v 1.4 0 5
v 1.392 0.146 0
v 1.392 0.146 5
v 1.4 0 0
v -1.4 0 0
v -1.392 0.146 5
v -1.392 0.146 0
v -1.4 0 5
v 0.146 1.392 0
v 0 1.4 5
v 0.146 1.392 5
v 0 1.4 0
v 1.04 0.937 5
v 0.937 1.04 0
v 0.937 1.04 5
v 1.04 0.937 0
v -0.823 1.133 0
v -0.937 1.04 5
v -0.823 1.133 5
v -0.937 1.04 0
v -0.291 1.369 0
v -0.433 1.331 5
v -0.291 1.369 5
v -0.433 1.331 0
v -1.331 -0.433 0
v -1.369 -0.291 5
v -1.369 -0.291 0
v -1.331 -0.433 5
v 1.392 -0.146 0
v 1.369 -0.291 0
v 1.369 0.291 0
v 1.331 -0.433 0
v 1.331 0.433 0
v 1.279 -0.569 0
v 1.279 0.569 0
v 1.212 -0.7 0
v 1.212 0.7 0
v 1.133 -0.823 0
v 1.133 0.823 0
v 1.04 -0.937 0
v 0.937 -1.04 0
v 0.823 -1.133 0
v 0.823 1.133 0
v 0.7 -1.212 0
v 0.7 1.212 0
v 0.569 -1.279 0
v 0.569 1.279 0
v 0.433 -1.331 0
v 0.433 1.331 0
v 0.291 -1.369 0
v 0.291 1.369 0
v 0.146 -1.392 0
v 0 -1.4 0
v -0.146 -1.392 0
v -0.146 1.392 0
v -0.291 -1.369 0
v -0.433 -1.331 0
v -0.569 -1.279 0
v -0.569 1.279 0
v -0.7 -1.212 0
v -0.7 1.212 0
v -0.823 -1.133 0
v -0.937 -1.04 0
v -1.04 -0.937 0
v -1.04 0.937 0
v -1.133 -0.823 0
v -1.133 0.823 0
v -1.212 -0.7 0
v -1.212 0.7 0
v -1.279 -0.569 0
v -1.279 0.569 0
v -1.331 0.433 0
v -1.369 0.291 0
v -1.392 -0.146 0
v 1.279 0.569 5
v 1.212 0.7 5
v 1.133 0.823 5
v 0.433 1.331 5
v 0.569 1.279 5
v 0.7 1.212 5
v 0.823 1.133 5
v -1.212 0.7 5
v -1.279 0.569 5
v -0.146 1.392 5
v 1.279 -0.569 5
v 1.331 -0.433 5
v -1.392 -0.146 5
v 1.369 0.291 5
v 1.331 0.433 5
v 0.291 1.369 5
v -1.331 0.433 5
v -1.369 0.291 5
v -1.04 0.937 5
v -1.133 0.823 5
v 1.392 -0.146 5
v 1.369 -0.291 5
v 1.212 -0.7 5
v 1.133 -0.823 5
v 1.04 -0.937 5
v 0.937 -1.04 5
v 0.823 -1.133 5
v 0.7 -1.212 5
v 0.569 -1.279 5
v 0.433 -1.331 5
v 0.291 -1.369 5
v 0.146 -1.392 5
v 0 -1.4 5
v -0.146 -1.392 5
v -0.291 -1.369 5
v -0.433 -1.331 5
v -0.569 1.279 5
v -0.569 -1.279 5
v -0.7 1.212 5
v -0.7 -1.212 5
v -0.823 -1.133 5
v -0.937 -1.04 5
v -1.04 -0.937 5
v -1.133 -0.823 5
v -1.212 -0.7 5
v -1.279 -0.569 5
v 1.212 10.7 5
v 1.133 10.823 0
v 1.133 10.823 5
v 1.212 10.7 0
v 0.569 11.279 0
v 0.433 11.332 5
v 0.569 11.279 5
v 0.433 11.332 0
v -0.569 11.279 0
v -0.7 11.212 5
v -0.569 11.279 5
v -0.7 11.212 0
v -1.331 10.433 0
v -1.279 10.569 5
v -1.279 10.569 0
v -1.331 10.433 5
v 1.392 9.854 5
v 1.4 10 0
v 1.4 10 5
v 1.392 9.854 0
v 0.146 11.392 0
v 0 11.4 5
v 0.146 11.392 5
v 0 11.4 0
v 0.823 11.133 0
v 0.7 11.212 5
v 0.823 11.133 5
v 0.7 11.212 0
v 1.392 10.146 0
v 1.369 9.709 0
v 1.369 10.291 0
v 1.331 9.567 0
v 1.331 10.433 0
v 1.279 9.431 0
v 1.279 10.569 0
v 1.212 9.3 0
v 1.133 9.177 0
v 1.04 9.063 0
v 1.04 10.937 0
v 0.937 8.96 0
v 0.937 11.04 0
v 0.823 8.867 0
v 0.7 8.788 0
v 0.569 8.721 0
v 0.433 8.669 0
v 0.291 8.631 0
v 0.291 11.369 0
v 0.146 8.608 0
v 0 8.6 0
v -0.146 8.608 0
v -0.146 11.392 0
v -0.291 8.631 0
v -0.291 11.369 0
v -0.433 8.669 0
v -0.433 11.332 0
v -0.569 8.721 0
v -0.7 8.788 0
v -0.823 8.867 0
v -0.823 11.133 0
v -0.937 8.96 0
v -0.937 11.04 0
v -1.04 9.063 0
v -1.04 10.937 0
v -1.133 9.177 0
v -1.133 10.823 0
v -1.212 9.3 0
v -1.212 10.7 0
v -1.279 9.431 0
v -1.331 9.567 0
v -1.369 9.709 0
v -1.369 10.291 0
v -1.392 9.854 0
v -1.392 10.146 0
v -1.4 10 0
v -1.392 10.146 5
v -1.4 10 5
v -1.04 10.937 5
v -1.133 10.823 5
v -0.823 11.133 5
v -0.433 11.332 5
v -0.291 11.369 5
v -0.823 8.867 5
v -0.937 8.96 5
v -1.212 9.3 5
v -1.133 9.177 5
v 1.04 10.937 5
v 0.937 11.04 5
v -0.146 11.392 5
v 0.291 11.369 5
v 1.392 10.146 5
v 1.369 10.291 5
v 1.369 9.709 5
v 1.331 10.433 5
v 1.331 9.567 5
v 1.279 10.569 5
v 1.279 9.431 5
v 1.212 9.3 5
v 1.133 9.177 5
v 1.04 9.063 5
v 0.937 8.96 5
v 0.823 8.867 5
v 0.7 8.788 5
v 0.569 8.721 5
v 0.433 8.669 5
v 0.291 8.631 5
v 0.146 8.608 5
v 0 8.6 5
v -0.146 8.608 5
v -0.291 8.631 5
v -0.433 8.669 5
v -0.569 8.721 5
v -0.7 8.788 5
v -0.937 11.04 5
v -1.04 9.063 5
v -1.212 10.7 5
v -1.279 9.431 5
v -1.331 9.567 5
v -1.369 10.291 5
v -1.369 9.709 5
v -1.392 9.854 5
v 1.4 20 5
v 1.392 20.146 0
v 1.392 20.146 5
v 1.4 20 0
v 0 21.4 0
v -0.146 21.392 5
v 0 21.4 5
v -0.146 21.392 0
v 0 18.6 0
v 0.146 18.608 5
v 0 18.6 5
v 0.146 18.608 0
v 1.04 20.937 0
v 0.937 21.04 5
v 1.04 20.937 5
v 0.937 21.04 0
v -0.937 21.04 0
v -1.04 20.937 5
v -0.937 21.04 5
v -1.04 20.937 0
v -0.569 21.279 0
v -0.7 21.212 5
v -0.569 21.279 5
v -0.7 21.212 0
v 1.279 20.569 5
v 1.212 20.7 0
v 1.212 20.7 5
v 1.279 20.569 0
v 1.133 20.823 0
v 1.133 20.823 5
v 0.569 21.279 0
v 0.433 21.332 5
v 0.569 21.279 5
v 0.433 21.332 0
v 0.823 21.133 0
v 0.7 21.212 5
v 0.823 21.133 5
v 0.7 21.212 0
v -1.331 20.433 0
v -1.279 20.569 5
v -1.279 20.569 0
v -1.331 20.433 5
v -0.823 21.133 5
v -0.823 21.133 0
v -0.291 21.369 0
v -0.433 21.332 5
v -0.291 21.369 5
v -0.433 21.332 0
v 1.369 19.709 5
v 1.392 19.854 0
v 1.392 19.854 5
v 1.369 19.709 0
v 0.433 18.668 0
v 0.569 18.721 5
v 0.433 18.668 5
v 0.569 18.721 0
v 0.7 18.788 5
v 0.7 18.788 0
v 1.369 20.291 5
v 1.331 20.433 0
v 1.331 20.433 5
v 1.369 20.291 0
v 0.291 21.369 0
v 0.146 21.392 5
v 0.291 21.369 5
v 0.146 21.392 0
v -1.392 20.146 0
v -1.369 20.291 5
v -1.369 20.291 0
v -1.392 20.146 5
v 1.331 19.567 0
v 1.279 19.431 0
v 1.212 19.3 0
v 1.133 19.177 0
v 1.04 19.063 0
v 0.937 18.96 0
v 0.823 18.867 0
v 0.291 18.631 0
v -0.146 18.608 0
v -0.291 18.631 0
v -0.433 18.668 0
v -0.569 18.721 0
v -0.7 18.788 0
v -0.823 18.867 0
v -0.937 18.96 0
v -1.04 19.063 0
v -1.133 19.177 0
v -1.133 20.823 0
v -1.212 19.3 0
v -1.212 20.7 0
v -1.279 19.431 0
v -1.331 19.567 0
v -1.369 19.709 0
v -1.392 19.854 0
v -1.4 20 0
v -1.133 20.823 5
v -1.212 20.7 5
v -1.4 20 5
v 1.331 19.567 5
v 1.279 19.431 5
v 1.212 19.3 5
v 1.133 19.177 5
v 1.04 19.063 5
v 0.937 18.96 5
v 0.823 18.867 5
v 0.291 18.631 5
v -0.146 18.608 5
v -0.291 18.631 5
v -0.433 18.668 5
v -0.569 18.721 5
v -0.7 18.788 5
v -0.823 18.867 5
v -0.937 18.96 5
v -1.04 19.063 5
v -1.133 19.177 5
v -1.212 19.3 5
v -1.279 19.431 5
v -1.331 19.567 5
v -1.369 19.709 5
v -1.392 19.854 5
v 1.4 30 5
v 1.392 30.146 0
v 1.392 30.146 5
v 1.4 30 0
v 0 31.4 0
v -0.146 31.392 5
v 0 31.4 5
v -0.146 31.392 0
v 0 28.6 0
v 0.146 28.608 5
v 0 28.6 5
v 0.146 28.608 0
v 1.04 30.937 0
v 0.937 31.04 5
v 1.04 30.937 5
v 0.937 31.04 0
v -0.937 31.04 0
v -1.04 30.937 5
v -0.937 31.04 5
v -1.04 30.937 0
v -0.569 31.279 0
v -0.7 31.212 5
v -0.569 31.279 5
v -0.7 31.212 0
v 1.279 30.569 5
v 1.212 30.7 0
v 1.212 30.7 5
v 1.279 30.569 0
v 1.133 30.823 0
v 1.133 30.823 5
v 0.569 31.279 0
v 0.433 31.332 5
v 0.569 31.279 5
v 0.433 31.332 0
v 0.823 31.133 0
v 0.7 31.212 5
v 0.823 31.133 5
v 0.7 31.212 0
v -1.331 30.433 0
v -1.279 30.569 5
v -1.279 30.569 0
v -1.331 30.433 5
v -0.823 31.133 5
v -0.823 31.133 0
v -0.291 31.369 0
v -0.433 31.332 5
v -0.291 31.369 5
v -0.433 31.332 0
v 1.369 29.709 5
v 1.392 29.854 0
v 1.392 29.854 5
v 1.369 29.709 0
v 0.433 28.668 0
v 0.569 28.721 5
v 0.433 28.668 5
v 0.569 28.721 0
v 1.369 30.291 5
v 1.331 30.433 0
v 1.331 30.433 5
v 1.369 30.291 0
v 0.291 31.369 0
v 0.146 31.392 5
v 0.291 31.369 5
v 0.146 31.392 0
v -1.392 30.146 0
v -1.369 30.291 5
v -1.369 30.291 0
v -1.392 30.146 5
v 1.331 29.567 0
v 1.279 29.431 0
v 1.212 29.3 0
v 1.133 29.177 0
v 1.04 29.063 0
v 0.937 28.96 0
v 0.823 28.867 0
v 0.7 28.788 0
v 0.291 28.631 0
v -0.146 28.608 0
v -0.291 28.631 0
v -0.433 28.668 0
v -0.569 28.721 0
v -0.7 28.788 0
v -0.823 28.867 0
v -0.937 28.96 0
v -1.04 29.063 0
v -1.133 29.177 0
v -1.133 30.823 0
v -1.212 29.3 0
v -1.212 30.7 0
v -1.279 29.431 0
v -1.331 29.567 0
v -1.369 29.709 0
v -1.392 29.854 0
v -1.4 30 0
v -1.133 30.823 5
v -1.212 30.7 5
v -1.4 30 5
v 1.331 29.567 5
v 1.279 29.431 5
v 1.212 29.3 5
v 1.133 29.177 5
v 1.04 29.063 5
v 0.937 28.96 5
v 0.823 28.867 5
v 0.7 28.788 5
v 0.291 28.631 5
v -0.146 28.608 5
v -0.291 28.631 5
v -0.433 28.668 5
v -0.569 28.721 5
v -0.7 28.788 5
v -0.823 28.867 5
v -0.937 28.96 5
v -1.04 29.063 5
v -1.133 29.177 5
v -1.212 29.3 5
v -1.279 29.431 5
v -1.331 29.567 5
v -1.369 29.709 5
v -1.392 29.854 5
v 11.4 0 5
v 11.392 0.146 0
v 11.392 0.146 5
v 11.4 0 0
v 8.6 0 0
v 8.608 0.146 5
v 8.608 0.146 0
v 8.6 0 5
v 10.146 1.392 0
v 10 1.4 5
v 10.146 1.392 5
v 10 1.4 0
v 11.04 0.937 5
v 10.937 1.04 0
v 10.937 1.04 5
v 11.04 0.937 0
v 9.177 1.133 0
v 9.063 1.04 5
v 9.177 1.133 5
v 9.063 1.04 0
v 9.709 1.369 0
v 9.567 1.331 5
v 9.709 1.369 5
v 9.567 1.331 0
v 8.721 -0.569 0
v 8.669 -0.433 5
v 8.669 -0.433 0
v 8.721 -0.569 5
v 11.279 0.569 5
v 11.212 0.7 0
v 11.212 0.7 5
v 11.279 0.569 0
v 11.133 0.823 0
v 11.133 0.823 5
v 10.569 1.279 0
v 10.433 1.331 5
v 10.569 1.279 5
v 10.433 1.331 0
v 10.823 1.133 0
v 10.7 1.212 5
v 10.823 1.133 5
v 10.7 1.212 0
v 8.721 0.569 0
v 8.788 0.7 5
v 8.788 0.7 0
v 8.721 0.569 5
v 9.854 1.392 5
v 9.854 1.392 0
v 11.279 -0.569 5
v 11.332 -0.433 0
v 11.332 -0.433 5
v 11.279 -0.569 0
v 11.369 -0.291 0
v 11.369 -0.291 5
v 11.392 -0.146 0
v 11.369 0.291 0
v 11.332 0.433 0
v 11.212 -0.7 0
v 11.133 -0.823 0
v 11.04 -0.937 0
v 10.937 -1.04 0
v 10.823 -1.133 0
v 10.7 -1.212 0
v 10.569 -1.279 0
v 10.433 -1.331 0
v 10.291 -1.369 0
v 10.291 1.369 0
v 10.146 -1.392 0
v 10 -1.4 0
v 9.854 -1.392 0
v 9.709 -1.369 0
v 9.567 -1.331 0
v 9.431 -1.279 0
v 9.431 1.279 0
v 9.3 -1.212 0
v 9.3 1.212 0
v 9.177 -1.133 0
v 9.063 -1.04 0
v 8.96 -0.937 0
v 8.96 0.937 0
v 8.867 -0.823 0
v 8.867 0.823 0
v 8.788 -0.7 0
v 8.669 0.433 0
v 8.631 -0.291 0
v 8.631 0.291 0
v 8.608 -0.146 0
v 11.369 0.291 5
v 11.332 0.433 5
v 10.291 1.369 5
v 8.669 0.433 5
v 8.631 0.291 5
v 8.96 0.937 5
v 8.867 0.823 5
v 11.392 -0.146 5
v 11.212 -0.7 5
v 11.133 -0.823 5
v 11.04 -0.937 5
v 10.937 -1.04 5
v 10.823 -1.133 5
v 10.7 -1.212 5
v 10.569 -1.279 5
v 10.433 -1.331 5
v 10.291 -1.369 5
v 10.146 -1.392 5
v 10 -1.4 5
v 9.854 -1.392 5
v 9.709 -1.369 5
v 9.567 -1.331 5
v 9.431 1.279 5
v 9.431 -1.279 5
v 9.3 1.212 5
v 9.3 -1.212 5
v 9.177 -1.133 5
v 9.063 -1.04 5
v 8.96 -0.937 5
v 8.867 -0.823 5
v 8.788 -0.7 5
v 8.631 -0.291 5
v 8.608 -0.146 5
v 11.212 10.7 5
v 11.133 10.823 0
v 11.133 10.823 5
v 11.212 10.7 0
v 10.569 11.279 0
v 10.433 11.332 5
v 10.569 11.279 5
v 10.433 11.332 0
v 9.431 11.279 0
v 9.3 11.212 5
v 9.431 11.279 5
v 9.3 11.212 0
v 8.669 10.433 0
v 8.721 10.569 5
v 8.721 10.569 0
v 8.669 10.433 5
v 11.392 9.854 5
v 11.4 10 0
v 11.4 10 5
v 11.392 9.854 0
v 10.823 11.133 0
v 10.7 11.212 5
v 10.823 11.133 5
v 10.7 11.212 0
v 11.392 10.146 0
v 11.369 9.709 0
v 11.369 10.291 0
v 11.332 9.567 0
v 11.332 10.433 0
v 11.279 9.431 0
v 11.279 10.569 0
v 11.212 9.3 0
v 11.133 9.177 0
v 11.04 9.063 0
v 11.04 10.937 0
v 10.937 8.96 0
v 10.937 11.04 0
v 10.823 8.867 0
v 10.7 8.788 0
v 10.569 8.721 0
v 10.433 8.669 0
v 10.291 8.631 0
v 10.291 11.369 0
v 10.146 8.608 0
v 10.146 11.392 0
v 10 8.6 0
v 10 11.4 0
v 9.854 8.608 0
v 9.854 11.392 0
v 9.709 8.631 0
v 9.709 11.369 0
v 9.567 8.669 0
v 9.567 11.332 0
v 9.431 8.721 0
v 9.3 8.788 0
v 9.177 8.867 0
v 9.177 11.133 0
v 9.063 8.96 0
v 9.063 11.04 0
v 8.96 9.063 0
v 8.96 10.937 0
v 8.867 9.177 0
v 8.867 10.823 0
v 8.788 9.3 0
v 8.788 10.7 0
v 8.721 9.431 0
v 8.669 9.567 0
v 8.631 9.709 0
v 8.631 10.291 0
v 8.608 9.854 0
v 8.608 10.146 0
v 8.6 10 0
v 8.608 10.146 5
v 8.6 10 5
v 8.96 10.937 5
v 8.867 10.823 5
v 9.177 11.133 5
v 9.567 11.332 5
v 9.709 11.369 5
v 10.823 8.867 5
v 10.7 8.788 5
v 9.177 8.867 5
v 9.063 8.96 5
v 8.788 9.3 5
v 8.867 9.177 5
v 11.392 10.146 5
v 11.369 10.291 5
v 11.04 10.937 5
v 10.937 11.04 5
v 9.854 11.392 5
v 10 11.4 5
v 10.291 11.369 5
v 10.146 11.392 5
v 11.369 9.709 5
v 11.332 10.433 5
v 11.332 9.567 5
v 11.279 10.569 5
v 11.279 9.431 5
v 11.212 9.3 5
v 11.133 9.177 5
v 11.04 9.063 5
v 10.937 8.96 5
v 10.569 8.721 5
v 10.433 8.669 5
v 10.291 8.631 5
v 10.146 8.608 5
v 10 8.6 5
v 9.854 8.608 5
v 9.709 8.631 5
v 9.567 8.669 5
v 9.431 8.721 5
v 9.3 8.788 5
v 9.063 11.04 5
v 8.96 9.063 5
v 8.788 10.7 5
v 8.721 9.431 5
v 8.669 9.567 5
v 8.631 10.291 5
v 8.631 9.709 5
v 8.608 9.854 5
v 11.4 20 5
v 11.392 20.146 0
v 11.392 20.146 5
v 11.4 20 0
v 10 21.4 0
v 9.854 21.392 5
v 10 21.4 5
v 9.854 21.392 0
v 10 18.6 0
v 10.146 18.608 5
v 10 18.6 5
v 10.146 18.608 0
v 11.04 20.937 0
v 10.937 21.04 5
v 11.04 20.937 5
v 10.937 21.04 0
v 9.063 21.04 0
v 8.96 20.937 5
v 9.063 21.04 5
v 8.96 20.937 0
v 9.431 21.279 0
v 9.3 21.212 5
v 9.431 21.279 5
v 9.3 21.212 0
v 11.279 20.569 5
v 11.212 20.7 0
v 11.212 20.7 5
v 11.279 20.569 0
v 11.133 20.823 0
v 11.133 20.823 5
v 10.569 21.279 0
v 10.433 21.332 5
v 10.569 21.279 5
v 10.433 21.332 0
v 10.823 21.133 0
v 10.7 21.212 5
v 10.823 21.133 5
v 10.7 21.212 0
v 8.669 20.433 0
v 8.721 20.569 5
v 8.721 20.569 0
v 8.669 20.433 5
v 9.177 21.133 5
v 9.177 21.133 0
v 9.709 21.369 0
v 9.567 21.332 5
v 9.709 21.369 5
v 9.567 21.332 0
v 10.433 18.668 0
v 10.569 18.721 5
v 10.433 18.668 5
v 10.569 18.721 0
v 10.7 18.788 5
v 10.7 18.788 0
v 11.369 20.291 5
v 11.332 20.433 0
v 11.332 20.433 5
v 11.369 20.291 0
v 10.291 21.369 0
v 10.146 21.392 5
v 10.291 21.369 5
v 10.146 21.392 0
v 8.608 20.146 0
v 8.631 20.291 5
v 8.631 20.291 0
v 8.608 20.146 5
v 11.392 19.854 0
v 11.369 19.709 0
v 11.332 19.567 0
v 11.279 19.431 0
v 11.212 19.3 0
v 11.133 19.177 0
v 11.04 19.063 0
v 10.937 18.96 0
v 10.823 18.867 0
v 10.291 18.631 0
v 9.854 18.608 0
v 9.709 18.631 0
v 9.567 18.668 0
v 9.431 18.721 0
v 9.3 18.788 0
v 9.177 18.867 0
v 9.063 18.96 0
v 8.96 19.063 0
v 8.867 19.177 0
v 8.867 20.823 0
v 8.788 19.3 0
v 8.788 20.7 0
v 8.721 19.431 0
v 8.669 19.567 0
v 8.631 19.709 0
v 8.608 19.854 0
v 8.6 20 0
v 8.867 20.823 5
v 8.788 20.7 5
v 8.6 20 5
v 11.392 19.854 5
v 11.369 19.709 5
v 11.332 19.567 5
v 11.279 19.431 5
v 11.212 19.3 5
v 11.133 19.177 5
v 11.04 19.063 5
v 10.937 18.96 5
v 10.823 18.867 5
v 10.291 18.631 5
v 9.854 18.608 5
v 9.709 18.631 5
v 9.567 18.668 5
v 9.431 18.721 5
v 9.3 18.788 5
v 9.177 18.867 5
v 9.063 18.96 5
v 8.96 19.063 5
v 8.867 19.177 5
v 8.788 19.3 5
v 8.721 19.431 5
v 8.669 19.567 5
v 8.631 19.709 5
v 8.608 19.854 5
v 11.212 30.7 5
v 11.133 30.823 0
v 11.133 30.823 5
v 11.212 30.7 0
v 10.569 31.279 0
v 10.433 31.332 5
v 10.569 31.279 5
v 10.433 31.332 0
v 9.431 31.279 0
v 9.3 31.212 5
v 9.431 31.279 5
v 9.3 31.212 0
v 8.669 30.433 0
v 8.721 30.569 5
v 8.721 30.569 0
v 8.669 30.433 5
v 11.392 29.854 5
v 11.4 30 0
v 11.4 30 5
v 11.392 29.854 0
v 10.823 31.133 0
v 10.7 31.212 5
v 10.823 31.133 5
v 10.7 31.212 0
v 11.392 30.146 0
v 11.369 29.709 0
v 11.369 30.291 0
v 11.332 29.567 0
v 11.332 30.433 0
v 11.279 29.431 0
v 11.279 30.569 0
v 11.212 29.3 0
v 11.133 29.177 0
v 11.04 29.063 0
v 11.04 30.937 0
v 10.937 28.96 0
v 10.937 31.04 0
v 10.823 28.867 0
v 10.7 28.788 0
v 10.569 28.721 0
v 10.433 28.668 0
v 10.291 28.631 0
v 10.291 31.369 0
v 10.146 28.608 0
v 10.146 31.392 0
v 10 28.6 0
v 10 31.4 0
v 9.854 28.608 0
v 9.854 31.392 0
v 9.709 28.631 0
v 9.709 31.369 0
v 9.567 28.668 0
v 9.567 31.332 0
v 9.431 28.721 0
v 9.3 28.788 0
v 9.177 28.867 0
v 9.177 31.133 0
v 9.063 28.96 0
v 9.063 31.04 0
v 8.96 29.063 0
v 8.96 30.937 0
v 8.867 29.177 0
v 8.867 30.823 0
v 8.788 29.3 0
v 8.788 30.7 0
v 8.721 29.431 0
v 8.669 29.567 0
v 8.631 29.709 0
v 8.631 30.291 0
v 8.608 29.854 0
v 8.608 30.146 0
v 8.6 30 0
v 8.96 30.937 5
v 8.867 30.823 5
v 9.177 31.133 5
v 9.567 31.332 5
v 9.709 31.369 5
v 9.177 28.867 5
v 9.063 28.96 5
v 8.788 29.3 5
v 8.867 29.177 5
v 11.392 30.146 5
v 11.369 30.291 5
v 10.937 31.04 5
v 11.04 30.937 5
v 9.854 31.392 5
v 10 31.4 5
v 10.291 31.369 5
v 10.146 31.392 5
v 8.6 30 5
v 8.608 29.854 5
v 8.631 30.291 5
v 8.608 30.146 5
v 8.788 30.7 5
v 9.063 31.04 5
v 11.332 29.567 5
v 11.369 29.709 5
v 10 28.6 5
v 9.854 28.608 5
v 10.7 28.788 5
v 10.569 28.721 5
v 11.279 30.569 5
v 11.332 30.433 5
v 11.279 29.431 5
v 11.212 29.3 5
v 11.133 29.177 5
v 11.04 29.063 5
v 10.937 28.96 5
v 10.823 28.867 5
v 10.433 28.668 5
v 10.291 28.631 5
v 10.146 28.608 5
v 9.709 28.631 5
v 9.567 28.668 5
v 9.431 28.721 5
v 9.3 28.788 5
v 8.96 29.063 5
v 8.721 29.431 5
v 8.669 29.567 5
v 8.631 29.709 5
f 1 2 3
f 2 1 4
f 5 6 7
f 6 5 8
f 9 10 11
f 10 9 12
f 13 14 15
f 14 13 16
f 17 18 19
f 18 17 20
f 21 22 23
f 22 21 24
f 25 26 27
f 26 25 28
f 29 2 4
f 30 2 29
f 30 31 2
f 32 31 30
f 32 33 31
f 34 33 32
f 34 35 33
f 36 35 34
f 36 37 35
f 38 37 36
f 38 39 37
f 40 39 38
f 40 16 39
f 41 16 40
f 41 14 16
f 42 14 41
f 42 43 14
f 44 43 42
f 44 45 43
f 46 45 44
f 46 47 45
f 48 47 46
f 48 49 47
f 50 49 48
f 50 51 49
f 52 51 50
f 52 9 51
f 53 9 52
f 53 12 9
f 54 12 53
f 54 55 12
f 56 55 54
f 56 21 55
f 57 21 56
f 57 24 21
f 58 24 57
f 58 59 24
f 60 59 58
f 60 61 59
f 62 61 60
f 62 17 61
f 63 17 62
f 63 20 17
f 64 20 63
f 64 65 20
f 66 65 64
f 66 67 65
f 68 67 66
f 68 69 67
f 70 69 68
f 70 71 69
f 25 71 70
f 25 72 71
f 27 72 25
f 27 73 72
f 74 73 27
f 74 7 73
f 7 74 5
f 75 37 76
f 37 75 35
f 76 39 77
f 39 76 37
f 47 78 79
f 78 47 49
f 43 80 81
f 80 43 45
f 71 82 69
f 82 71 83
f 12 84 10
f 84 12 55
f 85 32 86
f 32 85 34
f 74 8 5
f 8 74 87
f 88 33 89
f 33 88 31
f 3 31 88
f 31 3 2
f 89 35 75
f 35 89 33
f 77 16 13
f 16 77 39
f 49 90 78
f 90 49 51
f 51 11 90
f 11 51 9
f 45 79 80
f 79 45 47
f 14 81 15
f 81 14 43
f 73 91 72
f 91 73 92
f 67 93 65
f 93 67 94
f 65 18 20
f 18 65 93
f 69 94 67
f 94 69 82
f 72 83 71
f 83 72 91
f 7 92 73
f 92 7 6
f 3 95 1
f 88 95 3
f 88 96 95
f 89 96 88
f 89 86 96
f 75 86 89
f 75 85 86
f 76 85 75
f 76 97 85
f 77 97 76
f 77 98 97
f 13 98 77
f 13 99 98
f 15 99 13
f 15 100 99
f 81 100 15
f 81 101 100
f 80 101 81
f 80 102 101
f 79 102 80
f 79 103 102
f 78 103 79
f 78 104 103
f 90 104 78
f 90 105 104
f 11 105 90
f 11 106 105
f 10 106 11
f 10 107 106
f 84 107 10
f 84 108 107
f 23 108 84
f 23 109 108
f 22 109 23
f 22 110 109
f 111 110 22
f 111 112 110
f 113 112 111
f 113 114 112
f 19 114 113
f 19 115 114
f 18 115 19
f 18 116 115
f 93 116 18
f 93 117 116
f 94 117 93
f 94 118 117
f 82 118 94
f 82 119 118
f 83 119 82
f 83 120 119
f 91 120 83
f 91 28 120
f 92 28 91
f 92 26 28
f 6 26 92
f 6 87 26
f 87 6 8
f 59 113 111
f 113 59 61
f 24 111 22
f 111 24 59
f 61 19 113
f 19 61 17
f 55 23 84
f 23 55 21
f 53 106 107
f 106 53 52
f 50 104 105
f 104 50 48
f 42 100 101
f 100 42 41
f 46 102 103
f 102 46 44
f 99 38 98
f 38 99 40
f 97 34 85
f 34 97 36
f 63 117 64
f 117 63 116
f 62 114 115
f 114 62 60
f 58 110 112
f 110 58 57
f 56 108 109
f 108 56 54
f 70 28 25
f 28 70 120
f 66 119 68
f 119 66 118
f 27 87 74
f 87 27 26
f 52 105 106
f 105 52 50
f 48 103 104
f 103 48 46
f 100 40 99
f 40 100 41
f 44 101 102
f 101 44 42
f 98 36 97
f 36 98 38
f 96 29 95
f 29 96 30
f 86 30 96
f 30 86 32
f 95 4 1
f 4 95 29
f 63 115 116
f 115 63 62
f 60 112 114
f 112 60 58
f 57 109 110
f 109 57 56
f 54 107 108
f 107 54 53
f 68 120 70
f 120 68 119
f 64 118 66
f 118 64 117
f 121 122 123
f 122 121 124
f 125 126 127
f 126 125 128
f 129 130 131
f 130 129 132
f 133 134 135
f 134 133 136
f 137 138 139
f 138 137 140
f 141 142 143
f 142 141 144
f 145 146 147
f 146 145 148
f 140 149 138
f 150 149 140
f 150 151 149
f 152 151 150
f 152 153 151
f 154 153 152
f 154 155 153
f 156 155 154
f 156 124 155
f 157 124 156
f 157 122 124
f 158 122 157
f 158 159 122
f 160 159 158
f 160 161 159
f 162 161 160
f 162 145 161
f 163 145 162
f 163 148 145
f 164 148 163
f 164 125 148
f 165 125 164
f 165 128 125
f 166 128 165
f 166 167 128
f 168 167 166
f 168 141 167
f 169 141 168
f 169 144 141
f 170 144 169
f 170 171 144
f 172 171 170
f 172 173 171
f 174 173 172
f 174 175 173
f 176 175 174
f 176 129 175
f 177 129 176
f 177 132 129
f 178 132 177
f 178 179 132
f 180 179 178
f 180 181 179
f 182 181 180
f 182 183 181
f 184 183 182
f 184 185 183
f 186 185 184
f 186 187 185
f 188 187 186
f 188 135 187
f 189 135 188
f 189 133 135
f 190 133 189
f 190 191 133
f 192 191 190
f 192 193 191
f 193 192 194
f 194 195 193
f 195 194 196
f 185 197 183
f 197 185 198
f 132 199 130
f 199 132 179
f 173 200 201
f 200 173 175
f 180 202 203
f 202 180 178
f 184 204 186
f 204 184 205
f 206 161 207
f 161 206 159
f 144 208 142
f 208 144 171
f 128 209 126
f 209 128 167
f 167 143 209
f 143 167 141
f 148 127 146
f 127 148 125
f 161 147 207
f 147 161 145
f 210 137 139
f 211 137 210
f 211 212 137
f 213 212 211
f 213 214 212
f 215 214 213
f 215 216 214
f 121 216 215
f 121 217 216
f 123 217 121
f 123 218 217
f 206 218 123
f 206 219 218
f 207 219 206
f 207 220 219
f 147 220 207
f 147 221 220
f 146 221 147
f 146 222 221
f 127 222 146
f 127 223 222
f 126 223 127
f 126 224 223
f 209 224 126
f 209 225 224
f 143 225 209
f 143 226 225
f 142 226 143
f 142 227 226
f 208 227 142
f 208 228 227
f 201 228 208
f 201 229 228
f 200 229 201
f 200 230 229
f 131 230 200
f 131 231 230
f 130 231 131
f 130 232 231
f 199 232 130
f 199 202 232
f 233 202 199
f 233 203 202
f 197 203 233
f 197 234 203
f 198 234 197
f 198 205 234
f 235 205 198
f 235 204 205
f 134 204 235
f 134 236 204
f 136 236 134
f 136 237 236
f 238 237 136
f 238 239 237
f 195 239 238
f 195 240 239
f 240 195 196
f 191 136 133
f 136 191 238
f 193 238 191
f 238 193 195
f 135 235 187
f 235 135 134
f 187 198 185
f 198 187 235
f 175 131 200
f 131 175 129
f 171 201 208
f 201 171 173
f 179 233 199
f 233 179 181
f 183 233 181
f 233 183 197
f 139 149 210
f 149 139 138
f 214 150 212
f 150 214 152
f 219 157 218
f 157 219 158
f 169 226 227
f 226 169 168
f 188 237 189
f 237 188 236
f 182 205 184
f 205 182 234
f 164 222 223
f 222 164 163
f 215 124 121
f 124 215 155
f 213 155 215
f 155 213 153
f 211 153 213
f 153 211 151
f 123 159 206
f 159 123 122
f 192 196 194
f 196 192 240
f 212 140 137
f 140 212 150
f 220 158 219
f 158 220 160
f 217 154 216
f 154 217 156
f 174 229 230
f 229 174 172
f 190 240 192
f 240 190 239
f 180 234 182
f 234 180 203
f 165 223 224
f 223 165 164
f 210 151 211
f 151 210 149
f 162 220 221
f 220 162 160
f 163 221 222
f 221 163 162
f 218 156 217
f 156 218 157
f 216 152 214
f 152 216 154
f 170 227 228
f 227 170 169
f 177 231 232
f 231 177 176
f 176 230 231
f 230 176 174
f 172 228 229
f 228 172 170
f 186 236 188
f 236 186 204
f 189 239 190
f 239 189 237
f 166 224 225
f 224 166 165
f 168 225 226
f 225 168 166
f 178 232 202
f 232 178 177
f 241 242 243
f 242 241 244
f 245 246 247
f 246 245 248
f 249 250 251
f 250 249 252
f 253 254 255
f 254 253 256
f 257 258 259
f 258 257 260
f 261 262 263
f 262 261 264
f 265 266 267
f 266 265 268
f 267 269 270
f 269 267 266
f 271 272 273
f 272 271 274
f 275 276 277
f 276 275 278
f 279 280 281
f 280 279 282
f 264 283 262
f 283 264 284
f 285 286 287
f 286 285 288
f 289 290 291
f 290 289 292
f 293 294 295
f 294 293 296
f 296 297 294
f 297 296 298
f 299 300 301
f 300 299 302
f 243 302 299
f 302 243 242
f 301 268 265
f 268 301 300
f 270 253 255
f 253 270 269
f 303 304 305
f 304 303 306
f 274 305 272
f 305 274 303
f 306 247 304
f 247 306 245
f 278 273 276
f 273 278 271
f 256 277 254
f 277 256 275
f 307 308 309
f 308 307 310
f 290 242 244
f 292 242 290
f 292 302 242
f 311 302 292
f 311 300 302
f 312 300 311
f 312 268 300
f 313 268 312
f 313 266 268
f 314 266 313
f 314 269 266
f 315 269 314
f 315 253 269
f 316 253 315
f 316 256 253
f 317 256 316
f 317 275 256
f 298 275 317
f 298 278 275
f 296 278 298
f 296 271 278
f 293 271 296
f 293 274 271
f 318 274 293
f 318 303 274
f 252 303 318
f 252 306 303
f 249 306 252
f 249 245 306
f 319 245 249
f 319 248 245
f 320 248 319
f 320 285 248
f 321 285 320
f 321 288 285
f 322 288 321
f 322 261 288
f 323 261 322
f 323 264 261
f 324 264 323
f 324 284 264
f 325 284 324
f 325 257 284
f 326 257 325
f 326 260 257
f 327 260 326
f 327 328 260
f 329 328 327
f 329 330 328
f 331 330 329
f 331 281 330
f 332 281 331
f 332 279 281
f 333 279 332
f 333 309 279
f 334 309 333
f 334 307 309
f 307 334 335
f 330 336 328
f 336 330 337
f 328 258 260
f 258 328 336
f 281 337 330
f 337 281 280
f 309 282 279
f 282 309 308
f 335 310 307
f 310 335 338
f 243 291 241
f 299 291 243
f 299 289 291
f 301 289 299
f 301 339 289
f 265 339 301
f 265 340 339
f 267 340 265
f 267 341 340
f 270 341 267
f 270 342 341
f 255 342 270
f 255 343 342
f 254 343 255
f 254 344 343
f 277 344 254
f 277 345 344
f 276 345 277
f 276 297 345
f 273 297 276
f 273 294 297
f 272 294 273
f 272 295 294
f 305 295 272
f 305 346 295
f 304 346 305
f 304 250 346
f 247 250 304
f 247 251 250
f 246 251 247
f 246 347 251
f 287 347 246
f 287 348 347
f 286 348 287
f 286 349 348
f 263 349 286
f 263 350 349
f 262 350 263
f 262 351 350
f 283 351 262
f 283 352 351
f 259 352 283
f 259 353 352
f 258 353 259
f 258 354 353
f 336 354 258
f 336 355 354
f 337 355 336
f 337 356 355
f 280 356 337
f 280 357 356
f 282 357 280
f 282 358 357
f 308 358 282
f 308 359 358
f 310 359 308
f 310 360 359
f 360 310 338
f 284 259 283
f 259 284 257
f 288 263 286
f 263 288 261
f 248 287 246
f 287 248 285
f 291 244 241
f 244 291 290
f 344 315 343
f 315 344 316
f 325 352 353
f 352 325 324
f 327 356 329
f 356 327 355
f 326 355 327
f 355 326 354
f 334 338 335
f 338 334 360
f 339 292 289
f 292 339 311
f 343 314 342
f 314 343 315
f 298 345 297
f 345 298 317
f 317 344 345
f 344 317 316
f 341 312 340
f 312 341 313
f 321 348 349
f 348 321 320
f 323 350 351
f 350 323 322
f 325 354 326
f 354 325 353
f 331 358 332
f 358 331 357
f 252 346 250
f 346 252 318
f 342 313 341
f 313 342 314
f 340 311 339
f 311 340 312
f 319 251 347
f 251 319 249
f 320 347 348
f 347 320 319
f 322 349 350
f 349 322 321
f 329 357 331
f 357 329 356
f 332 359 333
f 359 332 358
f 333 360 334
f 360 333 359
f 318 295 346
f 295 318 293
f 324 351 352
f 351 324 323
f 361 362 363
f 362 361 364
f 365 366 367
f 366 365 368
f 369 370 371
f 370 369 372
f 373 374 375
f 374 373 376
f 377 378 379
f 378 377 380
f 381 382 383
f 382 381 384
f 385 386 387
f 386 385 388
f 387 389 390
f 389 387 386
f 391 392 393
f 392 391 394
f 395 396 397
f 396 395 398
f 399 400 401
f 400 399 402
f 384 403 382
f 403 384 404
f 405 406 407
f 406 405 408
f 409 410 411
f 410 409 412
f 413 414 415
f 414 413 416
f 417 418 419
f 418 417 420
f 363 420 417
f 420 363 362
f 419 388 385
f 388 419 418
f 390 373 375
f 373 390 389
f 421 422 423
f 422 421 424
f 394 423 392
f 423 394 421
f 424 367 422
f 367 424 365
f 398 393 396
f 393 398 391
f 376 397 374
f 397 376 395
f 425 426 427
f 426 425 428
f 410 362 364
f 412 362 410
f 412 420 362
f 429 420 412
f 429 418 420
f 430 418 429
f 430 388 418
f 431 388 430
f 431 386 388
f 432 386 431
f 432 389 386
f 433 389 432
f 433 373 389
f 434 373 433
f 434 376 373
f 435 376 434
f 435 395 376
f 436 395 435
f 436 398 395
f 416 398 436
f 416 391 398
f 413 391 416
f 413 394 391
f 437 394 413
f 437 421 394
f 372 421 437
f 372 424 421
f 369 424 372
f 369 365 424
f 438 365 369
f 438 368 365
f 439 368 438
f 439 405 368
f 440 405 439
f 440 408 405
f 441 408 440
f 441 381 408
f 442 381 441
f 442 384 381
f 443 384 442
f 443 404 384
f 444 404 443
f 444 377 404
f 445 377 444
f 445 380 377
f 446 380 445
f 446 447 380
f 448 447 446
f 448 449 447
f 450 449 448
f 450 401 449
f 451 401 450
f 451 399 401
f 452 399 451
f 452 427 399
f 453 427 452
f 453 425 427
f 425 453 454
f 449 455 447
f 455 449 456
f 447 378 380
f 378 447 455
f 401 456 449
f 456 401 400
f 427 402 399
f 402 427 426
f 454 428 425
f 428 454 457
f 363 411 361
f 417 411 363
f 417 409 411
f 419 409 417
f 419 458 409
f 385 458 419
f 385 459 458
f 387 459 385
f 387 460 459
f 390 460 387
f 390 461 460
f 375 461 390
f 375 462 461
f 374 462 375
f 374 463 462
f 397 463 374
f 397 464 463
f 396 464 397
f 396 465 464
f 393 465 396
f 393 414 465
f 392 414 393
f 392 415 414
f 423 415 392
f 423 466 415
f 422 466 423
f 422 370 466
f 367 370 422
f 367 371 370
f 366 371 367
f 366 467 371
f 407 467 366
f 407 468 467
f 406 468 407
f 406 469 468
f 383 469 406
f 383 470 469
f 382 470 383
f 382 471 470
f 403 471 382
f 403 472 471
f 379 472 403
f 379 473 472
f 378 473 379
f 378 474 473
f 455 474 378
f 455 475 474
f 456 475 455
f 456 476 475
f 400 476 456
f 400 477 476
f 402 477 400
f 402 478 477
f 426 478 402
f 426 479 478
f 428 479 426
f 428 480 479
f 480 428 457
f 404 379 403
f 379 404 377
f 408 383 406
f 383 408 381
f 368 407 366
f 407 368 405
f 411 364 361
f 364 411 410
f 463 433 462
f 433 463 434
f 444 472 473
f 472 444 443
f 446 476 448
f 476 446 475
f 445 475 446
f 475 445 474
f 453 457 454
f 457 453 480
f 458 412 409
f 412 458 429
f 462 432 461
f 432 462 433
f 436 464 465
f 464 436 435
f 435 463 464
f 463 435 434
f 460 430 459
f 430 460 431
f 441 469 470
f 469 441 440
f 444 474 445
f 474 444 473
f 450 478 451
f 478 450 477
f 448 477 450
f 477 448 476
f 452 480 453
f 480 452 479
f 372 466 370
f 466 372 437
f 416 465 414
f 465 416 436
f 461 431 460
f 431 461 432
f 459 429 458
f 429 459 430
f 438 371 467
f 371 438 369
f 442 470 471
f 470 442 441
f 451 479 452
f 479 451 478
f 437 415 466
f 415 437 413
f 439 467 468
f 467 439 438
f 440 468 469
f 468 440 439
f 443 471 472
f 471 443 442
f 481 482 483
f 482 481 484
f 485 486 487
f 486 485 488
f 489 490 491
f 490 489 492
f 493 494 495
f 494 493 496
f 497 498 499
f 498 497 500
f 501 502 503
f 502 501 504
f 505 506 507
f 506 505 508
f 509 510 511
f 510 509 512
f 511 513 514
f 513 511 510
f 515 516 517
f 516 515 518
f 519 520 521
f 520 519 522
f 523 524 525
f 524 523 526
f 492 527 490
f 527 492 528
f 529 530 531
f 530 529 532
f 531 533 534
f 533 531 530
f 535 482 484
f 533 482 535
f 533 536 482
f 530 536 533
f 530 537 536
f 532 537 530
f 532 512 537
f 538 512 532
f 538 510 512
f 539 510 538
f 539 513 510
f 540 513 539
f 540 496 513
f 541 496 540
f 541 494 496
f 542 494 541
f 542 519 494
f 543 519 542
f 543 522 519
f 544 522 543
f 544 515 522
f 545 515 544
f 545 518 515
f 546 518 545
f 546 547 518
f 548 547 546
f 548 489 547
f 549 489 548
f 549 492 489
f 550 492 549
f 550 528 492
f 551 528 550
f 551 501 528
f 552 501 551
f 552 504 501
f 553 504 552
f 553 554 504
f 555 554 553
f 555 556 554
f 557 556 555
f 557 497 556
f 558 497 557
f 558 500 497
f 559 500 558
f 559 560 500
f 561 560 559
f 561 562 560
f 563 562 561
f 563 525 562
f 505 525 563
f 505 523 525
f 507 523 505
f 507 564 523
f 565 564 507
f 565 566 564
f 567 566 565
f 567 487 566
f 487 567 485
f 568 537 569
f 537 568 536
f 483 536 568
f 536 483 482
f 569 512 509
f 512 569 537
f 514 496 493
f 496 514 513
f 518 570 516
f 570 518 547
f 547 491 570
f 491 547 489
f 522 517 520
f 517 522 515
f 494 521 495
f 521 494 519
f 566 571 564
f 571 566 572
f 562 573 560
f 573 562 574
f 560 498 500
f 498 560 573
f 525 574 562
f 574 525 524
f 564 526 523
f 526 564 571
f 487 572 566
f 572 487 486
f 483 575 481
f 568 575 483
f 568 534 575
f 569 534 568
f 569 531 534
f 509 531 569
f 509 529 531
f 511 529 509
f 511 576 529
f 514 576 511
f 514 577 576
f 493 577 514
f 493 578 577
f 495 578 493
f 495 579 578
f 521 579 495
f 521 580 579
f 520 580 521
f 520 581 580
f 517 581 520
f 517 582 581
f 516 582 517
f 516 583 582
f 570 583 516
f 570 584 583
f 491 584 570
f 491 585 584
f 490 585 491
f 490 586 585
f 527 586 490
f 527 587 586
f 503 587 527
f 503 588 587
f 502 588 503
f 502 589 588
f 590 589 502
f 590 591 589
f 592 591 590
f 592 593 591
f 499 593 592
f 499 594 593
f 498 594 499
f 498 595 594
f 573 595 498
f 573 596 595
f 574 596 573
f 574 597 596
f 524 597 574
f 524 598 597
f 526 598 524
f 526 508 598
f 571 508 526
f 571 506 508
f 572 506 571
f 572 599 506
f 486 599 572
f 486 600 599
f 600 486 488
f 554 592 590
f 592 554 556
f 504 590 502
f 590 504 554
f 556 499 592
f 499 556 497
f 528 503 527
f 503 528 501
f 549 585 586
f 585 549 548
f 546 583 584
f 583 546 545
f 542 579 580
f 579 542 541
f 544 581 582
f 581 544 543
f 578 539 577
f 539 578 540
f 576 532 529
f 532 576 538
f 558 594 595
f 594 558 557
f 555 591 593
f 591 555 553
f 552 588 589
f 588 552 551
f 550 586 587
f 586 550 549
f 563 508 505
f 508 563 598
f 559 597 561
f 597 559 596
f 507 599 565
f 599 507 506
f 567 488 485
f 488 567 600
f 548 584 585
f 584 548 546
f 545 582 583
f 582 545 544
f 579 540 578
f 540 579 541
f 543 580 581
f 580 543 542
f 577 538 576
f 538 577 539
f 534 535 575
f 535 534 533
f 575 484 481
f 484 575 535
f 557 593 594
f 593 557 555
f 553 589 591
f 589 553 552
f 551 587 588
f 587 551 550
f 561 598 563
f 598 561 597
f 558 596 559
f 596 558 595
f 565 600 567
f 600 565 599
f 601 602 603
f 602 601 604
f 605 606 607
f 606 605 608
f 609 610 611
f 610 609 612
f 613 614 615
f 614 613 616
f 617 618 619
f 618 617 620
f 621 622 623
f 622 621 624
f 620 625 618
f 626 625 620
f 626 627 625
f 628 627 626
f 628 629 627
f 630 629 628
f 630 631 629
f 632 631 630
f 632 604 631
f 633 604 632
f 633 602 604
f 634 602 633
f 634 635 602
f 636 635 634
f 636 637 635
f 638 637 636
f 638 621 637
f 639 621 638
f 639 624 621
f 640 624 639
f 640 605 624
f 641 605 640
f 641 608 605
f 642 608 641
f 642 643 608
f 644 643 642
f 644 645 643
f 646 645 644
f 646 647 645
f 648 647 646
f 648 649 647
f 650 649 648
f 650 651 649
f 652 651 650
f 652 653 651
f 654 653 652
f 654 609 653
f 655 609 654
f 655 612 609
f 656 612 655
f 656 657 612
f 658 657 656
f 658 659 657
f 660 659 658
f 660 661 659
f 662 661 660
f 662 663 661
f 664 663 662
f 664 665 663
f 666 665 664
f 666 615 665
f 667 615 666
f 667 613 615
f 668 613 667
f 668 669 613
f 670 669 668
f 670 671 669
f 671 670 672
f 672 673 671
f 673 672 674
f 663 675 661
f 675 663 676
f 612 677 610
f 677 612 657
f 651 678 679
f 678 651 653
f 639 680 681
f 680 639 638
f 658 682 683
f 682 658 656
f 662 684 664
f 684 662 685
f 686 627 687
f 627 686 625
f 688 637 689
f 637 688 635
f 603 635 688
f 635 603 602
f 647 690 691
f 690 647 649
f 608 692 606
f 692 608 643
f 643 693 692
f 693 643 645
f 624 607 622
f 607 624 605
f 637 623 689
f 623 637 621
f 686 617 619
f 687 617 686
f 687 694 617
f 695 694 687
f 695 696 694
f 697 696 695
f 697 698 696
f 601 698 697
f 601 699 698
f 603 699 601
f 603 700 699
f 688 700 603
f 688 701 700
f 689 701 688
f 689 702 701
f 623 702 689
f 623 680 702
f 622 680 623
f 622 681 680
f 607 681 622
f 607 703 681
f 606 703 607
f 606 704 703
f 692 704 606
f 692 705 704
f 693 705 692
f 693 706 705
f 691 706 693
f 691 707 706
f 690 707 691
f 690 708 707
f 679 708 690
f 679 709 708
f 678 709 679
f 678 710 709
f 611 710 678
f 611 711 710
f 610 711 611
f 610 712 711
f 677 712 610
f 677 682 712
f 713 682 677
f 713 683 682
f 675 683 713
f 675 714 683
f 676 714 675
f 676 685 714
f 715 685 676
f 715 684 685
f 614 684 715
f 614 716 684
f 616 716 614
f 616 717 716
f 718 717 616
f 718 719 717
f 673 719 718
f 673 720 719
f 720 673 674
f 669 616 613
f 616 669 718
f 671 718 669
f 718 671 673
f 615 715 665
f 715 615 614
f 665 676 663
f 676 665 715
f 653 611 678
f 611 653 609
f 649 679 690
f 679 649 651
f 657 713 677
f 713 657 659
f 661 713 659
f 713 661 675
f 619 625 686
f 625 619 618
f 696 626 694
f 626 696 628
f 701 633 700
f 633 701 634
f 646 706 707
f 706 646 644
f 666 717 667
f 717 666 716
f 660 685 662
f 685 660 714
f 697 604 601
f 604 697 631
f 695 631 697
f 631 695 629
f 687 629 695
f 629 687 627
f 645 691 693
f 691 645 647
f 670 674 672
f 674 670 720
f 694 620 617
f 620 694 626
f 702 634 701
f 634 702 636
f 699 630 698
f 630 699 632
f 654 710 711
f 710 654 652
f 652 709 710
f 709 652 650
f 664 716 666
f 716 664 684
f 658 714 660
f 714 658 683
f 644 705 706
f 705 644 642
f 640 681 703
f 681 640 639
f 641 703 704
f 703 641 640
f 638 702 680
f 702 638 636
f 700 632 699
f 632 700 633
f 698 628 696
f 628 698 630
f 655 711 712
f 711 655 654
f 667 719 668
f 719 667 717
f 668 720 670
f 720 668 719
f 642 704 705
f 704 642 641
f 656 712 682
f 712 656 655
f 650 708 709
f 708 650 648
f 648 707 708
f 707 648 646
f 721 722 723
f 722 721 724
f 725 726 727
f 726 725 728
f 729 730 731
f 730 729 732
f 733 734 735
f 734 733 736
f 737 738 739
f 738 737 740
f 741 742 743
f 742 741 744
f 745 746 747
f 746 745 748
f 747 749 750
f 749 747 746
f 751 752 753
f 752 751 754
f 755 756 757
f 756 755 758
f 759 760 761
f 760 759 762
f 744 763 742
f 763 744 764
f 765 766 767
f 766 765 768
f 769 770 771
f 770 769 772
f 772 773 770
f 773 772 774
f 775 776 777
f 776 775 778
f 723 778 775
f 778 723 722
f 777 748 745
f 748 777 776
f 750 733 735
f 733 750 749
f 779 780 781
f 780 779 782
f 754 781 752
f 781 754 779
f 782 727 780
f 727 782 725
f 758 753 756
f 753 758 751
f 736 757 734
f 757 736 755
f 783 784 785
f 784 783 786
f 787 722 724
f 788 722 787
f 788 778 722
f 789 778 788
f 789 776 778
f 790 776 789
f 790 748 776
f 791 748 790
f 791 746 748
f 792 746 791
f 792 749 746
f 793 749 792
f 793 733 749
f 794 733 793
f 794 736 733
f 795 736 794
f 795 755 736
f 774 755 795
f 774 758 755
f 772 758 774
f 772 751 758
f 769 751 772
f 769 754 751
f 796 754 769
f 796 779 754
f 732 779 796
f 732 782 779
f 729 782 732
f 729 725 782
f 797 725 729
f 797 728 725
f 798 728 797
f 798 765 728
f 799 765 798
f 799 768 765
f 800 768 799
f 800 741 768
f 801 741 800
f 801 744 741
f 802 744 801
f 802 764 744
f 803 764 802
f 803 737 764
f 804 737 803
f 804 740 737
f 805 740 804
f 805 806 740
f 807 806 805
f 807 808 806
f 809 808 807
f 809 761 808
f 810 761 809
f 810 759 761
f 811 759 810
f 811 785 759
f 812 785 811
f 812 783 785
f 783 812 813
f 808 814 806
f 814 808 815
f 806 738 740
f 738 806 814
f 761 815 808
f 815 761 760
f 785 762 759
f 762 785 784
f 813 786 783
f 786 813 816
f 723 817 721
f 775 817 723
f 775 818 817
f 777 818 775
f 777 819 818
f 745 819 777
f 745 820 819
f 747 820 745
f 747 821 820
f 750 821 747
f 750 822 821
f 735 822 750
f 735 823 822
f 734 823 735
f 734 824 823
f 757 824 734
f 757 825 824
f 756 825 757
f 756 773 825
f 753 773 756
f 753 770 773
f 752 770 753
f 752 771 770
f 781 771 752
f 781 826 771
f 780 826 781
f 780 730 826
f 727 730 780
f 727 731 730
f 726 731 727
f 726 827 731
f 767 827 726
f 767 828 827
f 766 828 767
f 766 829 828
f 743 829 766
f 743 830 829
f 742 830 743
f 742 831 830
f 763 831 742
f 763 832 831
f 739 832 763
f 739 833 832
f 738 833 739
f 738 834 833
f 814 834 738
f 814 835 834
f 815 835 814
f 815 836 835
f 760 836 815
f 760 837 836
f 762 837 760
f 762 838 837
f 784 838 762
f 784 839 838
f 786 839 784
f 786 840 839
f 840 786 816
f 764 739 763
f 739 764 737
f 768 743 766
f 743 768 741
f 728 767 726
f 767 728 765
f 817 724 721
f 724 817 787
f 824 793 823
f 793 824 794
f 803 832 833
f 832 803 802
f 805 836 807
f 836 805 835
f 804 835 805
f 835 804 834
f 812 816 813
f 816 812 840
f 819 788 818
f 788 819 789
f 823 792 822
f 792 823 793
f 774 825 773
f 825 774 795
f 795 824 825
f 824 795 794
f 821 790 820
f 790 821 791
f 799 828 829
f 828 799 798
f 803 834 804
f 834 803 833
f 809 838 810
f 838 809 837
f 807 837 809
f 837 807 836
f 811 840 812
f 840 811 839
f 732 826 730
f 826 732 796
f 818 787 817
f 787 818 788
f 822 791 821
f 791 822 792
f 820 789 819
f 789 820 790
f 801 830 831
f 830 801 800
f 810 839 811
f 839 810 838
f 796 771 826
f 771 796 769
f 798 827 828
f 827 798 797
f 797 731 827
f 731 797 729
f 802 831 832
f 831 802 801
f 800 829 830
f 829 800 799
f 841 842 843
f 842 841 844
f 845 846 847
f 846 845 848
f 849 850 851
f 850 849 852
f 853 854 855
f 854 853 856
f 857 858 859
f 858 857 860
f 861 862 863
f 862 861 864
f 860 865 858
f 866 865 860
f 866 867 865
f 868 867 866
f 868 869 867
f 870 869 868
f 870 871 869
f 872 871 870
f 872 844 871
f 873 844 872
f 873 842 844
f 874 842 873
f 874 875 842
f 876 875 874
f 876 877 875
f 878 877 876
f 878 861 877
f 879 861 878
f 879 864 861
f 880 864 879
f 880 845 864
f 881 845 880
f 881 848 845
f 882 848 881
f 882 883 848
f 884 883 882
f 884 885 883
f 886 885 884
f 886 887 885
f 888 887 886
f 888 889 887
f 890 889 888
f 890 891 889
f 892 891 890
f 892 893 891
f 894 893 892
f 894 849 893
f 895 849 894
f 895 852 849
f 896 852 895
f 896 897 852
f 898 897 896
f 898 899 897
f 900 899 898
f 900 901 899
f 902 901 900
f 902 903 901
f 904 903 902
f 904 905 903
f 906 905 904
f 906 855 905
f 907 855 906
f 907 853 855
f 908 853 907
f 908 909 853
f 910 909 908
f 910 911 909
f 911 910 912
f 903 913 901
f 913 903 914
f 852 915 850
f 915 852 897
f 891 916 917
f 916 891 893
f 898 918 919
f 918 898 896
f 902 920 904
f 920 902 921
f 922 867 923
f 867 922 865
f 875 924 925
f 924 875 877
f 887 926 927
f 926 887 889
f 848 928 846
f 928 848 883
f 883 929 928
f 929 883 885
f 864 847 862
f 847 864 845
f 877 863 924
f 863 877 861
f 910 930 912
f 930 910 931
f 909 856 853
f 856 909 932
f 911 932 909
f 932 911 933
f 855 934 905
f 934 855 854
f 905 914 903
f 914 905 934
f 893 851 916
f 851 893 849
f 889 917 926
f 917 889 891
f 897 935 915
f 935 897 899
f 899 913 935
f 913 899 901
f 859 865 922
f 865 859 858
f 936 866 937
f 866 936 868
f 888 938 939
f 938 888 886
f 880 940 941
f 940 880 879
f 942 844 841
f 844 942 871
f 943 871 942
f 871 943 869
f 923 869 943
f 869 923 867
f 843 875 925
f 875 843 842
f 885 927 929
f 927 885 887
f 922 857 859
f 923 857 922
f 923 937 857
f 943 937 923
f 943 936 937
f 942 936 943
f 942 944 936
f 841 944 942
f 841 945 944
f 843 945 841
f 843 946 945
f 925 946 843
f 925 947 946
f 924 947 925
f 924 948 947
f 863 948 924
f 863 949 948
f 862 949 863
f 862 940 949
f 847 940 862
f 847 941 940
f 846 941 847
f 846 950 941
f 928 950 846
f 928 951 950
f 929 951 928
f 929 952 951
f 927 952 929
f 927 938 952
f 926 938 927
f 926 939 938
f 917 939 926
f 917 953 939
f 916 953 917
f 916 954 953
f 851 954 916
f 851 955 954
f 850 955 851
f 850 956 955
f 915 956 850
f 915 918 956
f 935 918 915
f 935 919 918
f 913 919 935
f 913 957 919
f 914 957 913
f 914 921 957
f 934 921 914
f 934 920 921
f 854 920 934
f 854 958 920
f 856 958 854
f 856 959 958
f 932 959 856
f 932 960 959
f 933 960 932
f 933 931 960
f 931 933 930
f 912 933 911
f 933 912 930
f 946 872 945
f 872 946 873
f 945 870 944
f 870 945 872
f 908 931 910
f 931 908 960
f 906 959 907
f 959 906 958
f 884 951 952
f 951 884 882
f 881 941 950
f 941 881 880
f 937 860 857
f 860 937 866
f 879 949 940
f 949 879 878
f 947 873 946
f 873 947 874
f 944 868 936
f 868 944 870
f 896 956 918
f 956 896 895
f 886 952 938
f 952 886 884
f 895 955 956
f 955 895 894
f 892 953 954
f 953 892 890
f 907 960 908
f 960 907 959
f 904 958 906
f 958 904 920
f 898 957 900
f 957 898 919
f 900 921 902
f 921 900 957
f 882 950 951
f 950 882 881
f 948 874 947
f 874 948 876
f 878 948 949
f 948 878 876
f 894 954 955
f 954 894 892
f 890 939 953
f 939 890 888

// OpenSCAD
/* ==========================================================================
   PROJETO CAMPO TÁTIL - PINOS DE ENCAIXE SEPARADOS (8 PEÇAS)
   Diâmetro: 2.8mm | Altura: 5.0mm
   Impressão dos pinos em pé diretamente na mesa para posterior colagem
   ========================================================================== */

$fn = 60;

module pino_individual() {
    // Cilindro assentado no plano Z=0
    cylinder(h = 5.0, r = 1.4);
}

module grade_de_pinos() {
    // Organiza 8 pinos em uma grade 2x4 com espaçamento de 10mm para imprimir fácil
    for (x = [0 : 1 : 1]) {
        for (y = [0 : 1 : 3]) {
            translate([x * 10, y * 10, 0])
                pino_individual();
        }
    }
}

grade_de_pinos();
